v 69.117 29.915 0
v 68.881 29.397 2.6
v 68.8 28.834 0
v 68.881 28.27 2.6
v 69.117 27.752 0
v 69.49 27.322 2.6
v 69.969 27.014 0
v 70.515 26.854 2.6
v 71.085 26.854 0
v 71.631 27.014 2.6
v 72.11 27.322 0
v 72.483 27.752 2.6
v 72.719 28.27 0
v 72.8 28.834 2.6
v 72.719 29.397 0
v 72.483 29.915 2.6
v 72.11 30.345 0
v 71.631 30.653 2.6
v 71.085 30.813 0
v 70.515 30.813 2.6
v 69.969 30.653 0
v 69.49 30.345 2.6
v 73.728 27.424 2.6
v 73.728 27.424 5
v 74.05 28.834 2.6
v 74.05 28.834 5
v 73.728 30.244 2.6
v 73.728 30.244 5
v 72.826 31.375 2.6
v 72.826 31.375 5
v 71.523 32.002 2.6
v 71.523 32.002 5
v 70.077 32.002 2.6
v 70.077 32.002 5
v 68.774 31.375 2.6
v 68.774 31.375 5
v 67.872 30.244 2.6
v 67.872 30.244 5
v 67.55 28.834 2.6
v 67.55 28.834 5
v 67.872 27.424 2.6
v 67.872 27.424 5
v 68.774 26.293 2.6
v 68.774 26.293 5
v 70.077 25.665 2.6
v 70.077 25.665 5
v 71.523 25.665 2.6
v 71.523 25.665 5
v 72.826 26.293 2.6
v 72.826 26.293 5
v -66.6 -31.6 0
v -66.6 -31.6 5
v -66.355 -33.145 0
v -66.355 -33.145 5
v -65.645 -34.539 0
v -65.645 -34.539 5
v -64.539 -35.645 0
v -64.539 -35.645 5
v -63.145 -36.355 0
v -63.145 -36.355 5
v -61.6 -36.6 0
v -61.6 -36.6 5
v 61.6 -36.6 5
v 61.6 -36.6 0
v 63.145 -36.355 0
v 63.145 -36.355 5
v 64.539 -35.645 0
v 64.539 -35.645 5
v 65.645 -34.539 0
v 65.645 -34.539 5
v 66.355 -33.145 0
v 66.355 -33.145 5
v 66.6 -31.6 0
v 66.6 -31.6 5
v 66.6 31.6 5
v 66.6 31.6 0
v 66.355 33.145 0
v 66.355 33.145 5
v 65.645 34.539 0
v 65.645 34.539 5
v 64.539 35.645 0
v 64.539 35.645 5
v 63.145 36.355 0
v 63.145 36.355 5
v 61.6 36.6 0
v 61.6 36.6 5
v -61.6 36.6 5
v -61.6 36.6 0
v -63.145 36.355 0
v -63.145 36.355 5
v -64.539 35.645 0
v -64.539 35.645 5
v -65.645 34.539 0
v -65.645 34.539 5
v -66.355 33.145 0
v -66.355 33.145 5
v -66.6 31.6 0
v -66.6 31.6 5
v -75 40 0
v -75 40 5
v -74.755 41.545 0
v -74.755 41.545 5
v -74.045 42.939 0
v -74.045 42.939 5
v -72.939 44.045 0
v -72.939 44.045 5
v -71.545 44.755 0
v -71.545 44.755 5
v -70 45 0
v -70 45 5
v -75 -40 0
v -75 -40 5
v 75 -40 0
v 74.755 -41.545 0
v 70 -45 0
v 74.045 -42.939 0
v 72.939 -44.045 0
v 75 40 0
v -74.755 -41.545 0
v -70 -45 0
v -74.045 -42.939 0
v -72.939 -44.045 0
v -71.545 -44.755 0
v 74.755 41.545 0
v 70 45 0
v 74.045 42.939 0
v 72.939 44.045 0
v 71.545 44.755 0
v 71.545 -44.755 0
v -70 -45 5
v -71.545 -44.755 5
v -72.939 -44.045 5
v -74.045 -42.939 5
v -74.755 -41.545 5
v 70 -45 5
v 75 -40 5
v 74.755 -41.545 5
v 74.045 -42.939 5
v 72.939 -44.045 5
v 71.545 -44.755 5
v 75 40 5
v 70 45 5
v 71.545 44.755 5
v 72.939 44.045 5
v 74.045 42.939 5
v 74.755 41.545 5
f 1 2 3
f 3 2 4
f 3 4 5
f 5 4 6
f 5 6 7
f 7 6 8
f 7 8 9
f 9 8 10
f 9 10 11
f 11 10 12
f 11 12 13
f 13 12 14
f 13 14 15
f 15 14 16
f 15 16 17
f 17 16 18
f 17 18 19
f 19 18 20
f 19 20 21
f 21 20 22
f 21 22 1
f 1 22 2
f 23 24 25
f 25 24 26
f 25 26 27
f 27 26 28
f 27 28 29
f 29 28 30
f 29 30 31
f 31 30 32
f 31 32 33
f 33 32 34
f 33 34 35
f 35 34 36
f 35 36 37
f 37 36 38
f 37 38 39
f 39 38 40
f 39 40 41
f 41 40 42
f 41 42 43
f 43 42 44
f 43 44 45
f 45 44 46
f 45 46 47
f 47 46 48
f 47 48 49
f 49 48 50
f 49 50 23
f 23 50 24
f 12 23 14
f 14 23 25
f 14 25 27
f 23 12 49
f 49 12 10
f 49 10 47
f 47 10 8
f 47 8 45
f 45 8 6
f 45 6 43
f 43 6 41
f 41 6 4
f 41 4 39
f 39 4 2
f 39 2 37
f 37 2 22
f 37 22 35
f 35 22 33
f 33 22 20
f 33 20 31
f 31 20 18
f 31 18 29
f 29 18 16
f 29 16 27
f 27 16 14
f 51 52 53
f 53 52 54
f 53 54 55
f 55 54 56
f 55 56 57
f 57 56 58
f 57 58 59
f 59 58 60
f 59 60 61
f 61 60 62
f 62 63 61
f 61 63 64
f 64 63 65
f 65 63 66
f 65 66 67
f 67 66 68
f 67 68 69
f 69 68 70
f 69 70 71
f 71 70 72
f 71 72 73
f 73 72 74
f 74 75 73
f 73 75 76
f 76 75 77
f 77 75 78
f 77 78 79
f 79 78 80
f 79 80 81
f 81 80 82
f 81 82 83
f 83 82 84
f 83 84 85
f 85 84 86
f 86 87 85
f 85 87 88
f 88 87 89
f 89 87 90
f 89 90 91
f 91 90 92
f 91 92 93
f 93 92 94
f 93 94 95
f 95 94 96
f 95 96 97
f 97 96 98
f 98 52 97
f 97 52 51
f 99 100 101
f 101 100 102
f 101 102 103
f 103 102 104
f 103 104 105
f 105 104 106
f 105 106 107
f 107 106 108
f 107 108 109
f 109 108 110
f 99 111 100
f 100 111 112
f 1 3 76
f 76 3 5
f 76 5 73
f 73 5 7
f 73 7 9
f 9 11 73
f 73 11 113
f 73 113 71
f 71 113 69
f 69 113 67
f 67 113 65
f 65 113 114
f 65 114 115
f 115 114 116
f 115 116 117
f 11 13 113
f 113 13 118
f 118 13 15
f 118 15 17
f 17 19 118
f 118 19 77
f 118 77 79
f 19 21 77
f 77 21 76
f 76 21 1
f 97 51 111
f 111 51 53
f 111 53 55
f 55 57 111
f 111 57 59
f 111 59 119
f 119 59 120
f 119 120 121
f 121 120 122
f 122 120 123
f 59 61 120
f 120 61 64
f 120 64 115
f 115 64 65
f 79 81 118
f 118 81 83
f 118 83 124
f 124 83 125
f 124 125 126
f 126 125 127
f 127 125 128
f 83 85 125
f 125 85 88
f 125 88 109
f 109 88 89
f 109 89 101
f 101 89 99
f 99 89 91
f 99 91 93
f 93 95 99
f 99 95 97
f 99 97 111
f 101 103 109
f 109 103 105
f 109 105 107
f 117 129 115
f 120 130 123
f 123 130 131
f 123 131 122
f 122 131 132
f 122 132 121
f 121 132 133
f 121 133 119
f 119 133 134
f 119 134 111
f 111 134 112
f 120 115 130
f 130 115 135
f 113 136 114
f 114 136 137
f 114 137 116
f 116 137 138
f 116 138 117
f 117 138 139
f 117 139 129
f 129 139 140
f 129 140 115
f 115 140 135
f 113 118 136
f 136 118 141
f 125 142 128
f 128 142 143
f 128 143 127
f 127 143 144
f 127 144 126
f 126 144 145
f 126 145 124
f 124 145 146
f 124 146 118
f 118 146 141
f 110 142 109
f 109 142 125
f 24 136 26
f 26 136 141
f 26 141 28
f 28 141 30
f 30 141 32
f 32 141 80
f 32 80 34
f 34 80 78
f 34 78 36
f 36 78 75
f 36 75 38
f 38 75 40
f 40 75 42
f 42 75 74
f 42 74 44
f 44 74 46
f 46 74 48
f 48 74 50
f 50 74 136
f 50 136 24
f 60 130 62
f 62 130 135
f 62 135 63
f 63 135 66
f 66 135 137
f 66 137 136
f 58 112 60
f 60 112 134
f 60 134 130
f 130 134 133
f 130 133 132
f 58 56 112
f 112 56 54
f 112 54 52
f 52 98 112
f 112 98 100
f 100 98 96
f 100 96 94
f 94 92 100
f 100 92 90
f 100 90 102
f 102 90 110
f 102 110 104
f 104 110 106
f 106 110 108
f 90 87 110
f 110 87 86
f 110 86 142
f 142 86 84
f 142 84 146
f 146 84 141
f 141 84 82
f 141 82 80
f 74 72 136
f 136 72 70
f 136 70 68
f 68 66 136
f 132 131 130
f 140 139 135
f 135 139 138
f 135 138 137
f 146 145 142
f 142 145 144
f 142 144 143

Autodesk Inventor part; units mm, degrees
ref_plane "YZ Plane" through (0, 0, 0) normal (1, 0, 0) x (0, 1, 0)
ref_plane "XZ Plane" through (0, 0, 0) normal (0, 1, 0) x (-1, 0, 0)
ref_plane "XY Plane" through (0, 0, 0) normal (0, 0, 1) x (1, 0, 0)
sketch "Sketch1" plane through (0, 0, 0) normal (0, 0, 1) x (1, 0, 0)
  line L0 (-75, 45) -> (75, 45)
  line L1 (75, 45) -> (75, -45)
  line L2 (75, -45) -> (-75, -45)
  line L3 (-75, -45) -> (-75, 45)
  line L4 (-75, 45) -> (75, -45) construction
  line L5 (75, 45) -> (-75, -45) construction
  point P0 (0, 0)
  dimension "d0" = 150
  dimension "d1" = 90
extrude "Extrusion1" add sketch "Sketch1" along normal blind 5
fillet "Fillet1" radius 5 4 edges at (75, 45, 2.5) (75, -45, 2.5) (-75, -45, 2.5) (-75, 45, 2.5)
sketch "Sketch2" plane through (0, 0, 5) normal (0, 0, 1) x (1, 0, 0)
  line L0 (-61.6, -36.6) -> (61.6, -36.6)
  line L1 (66.6, -31.6) -> (66.6, 31.6)
  line L2 (61.6, 36.6) -> (-61.6, 36.6)
  line L3 (-66.6, 31.6) -> (-66.6, -31.6)
  line L4 (-66.6, -36.6) -> (66.6, 36.6) construction
  line L5 (66.6, -36.6) -> (-66.6, 36.6) construction
  arc A0 (-61.6, 36.6) -> (-66.6, 31.6) centre (-61.6, 31.6) ccw
  arc A1 (-66.6, -31.6) -> (-61.6, -36.6) centre (-61.6, -31.6) ccw
  arc A2 (61.6, -36.6) -> (66.6, -31.6) centre (61.6, -31.6) ccw
  arc A3 (66.6, 31.6) -> (61.6, 36.6) centre (61.6, 31.6) ccw
  point P0 (0, 0)
  dimension "d5" = 133.2
  dimension "d6" = 73.2
  dimension "d9" = 5
extrude "Extrusion2" cut sketch "Sketch2" against normal blind 5
sketch "Sketch3" plane through (0, 0, 5) normal (0, 0, 1) x (1, 0, 0)
  line L0 (66.6, 31.6) -> (66.6, -31.6) projected
  line L1 (66.6, 0) -> (75, 0) construction
  line L2 (75, -40) -> (75, 40) projected
  line L3 (70.8, 0) -> (70.8, 28.8336) construction
  circle A0 centre (70.8, 28.8336) radius 3.25
  point P0 (0, 0)
  dimension "d10" = 6.5
extrude "Extrusion3" cut sketch "Sketch3" against normal blind 2.4
sketch "Sketch4" plane through (70.8, 28.8336, 2.6) normal (0, 0, 1) x (1, 0, 0)
  circle A0 centre (0, 0) radius 2
  point P0 (-70.8, -28.8336)
  dimension "d13" = 4
extrude "Extrusion4" cut sketch "Sketch4" against normal blind 15
sketch "Sketch7" plane through (0, 0, 3) normal (0, 0, 1) x (1, 0, 0)
  line L0 (-66.6, -31.6) -> (-66.6, 31.6) projected
  line L1 (-66.6, 0.4) -> (-51.6, 0.4) construction
  line L2 (61.6, -36.6) -> (-61.6, -36.6) projected
  line L3 (-51.6, -36.6) -> (-51.6, -19.6) construction
  line L4 (-51.6, -36.6) -> (-34.6, -36.6) construction
  line L5 (-66.6, 19.9067) -> (-31.6, 19.9067) construction
  line L6 (-31.6, -17.6) -> (-31.6, 19.4) construction
  line L7 (-31.6, -36.6) -> (5.4, -36.6) construction
  line L8 (-49.6, -19.6) -> (-33.6, -19.6)
  line L9 (-31.6, -19.6) -> (-31.6, 17.4)
  line L10 (-33.6, 19.4) -> (-49.6, 19.4)
  line L11 (-51.6, 17.4) -> (-51.6, -17.6)
  arc A0 (-49.6, 19.4) -> (-51.6, 17.4) centre (-49.6, 17.4) ccw
  arc A1 (-31.6, 17.4) -> (-33.6, 19.4) centre (-33.6, 17.4) ccw
  arc A2 (-33.6, -19.6) -> (-31.6, -17.6) centre (-33.6, -17.6) ccw
  arc A3 (-51.6, -17.6) -> (-49.6, -19.6) centre (-49.6, -17.6) ccw
  point P0 (0, 0)
  point P1 (-67, -23.834)
  point P2 (-31.6, -17.6)
  dimension "d30" = 17
  dimension "d31" = 90
  dimension "d34" = 56
  dimension "d35" = 90
  dimension "d36" = 15
  dimension "d37" = 35
  dimension "d38" = 2
extrude "Extrusion6" [suppressed]
properties part number "Frame"
